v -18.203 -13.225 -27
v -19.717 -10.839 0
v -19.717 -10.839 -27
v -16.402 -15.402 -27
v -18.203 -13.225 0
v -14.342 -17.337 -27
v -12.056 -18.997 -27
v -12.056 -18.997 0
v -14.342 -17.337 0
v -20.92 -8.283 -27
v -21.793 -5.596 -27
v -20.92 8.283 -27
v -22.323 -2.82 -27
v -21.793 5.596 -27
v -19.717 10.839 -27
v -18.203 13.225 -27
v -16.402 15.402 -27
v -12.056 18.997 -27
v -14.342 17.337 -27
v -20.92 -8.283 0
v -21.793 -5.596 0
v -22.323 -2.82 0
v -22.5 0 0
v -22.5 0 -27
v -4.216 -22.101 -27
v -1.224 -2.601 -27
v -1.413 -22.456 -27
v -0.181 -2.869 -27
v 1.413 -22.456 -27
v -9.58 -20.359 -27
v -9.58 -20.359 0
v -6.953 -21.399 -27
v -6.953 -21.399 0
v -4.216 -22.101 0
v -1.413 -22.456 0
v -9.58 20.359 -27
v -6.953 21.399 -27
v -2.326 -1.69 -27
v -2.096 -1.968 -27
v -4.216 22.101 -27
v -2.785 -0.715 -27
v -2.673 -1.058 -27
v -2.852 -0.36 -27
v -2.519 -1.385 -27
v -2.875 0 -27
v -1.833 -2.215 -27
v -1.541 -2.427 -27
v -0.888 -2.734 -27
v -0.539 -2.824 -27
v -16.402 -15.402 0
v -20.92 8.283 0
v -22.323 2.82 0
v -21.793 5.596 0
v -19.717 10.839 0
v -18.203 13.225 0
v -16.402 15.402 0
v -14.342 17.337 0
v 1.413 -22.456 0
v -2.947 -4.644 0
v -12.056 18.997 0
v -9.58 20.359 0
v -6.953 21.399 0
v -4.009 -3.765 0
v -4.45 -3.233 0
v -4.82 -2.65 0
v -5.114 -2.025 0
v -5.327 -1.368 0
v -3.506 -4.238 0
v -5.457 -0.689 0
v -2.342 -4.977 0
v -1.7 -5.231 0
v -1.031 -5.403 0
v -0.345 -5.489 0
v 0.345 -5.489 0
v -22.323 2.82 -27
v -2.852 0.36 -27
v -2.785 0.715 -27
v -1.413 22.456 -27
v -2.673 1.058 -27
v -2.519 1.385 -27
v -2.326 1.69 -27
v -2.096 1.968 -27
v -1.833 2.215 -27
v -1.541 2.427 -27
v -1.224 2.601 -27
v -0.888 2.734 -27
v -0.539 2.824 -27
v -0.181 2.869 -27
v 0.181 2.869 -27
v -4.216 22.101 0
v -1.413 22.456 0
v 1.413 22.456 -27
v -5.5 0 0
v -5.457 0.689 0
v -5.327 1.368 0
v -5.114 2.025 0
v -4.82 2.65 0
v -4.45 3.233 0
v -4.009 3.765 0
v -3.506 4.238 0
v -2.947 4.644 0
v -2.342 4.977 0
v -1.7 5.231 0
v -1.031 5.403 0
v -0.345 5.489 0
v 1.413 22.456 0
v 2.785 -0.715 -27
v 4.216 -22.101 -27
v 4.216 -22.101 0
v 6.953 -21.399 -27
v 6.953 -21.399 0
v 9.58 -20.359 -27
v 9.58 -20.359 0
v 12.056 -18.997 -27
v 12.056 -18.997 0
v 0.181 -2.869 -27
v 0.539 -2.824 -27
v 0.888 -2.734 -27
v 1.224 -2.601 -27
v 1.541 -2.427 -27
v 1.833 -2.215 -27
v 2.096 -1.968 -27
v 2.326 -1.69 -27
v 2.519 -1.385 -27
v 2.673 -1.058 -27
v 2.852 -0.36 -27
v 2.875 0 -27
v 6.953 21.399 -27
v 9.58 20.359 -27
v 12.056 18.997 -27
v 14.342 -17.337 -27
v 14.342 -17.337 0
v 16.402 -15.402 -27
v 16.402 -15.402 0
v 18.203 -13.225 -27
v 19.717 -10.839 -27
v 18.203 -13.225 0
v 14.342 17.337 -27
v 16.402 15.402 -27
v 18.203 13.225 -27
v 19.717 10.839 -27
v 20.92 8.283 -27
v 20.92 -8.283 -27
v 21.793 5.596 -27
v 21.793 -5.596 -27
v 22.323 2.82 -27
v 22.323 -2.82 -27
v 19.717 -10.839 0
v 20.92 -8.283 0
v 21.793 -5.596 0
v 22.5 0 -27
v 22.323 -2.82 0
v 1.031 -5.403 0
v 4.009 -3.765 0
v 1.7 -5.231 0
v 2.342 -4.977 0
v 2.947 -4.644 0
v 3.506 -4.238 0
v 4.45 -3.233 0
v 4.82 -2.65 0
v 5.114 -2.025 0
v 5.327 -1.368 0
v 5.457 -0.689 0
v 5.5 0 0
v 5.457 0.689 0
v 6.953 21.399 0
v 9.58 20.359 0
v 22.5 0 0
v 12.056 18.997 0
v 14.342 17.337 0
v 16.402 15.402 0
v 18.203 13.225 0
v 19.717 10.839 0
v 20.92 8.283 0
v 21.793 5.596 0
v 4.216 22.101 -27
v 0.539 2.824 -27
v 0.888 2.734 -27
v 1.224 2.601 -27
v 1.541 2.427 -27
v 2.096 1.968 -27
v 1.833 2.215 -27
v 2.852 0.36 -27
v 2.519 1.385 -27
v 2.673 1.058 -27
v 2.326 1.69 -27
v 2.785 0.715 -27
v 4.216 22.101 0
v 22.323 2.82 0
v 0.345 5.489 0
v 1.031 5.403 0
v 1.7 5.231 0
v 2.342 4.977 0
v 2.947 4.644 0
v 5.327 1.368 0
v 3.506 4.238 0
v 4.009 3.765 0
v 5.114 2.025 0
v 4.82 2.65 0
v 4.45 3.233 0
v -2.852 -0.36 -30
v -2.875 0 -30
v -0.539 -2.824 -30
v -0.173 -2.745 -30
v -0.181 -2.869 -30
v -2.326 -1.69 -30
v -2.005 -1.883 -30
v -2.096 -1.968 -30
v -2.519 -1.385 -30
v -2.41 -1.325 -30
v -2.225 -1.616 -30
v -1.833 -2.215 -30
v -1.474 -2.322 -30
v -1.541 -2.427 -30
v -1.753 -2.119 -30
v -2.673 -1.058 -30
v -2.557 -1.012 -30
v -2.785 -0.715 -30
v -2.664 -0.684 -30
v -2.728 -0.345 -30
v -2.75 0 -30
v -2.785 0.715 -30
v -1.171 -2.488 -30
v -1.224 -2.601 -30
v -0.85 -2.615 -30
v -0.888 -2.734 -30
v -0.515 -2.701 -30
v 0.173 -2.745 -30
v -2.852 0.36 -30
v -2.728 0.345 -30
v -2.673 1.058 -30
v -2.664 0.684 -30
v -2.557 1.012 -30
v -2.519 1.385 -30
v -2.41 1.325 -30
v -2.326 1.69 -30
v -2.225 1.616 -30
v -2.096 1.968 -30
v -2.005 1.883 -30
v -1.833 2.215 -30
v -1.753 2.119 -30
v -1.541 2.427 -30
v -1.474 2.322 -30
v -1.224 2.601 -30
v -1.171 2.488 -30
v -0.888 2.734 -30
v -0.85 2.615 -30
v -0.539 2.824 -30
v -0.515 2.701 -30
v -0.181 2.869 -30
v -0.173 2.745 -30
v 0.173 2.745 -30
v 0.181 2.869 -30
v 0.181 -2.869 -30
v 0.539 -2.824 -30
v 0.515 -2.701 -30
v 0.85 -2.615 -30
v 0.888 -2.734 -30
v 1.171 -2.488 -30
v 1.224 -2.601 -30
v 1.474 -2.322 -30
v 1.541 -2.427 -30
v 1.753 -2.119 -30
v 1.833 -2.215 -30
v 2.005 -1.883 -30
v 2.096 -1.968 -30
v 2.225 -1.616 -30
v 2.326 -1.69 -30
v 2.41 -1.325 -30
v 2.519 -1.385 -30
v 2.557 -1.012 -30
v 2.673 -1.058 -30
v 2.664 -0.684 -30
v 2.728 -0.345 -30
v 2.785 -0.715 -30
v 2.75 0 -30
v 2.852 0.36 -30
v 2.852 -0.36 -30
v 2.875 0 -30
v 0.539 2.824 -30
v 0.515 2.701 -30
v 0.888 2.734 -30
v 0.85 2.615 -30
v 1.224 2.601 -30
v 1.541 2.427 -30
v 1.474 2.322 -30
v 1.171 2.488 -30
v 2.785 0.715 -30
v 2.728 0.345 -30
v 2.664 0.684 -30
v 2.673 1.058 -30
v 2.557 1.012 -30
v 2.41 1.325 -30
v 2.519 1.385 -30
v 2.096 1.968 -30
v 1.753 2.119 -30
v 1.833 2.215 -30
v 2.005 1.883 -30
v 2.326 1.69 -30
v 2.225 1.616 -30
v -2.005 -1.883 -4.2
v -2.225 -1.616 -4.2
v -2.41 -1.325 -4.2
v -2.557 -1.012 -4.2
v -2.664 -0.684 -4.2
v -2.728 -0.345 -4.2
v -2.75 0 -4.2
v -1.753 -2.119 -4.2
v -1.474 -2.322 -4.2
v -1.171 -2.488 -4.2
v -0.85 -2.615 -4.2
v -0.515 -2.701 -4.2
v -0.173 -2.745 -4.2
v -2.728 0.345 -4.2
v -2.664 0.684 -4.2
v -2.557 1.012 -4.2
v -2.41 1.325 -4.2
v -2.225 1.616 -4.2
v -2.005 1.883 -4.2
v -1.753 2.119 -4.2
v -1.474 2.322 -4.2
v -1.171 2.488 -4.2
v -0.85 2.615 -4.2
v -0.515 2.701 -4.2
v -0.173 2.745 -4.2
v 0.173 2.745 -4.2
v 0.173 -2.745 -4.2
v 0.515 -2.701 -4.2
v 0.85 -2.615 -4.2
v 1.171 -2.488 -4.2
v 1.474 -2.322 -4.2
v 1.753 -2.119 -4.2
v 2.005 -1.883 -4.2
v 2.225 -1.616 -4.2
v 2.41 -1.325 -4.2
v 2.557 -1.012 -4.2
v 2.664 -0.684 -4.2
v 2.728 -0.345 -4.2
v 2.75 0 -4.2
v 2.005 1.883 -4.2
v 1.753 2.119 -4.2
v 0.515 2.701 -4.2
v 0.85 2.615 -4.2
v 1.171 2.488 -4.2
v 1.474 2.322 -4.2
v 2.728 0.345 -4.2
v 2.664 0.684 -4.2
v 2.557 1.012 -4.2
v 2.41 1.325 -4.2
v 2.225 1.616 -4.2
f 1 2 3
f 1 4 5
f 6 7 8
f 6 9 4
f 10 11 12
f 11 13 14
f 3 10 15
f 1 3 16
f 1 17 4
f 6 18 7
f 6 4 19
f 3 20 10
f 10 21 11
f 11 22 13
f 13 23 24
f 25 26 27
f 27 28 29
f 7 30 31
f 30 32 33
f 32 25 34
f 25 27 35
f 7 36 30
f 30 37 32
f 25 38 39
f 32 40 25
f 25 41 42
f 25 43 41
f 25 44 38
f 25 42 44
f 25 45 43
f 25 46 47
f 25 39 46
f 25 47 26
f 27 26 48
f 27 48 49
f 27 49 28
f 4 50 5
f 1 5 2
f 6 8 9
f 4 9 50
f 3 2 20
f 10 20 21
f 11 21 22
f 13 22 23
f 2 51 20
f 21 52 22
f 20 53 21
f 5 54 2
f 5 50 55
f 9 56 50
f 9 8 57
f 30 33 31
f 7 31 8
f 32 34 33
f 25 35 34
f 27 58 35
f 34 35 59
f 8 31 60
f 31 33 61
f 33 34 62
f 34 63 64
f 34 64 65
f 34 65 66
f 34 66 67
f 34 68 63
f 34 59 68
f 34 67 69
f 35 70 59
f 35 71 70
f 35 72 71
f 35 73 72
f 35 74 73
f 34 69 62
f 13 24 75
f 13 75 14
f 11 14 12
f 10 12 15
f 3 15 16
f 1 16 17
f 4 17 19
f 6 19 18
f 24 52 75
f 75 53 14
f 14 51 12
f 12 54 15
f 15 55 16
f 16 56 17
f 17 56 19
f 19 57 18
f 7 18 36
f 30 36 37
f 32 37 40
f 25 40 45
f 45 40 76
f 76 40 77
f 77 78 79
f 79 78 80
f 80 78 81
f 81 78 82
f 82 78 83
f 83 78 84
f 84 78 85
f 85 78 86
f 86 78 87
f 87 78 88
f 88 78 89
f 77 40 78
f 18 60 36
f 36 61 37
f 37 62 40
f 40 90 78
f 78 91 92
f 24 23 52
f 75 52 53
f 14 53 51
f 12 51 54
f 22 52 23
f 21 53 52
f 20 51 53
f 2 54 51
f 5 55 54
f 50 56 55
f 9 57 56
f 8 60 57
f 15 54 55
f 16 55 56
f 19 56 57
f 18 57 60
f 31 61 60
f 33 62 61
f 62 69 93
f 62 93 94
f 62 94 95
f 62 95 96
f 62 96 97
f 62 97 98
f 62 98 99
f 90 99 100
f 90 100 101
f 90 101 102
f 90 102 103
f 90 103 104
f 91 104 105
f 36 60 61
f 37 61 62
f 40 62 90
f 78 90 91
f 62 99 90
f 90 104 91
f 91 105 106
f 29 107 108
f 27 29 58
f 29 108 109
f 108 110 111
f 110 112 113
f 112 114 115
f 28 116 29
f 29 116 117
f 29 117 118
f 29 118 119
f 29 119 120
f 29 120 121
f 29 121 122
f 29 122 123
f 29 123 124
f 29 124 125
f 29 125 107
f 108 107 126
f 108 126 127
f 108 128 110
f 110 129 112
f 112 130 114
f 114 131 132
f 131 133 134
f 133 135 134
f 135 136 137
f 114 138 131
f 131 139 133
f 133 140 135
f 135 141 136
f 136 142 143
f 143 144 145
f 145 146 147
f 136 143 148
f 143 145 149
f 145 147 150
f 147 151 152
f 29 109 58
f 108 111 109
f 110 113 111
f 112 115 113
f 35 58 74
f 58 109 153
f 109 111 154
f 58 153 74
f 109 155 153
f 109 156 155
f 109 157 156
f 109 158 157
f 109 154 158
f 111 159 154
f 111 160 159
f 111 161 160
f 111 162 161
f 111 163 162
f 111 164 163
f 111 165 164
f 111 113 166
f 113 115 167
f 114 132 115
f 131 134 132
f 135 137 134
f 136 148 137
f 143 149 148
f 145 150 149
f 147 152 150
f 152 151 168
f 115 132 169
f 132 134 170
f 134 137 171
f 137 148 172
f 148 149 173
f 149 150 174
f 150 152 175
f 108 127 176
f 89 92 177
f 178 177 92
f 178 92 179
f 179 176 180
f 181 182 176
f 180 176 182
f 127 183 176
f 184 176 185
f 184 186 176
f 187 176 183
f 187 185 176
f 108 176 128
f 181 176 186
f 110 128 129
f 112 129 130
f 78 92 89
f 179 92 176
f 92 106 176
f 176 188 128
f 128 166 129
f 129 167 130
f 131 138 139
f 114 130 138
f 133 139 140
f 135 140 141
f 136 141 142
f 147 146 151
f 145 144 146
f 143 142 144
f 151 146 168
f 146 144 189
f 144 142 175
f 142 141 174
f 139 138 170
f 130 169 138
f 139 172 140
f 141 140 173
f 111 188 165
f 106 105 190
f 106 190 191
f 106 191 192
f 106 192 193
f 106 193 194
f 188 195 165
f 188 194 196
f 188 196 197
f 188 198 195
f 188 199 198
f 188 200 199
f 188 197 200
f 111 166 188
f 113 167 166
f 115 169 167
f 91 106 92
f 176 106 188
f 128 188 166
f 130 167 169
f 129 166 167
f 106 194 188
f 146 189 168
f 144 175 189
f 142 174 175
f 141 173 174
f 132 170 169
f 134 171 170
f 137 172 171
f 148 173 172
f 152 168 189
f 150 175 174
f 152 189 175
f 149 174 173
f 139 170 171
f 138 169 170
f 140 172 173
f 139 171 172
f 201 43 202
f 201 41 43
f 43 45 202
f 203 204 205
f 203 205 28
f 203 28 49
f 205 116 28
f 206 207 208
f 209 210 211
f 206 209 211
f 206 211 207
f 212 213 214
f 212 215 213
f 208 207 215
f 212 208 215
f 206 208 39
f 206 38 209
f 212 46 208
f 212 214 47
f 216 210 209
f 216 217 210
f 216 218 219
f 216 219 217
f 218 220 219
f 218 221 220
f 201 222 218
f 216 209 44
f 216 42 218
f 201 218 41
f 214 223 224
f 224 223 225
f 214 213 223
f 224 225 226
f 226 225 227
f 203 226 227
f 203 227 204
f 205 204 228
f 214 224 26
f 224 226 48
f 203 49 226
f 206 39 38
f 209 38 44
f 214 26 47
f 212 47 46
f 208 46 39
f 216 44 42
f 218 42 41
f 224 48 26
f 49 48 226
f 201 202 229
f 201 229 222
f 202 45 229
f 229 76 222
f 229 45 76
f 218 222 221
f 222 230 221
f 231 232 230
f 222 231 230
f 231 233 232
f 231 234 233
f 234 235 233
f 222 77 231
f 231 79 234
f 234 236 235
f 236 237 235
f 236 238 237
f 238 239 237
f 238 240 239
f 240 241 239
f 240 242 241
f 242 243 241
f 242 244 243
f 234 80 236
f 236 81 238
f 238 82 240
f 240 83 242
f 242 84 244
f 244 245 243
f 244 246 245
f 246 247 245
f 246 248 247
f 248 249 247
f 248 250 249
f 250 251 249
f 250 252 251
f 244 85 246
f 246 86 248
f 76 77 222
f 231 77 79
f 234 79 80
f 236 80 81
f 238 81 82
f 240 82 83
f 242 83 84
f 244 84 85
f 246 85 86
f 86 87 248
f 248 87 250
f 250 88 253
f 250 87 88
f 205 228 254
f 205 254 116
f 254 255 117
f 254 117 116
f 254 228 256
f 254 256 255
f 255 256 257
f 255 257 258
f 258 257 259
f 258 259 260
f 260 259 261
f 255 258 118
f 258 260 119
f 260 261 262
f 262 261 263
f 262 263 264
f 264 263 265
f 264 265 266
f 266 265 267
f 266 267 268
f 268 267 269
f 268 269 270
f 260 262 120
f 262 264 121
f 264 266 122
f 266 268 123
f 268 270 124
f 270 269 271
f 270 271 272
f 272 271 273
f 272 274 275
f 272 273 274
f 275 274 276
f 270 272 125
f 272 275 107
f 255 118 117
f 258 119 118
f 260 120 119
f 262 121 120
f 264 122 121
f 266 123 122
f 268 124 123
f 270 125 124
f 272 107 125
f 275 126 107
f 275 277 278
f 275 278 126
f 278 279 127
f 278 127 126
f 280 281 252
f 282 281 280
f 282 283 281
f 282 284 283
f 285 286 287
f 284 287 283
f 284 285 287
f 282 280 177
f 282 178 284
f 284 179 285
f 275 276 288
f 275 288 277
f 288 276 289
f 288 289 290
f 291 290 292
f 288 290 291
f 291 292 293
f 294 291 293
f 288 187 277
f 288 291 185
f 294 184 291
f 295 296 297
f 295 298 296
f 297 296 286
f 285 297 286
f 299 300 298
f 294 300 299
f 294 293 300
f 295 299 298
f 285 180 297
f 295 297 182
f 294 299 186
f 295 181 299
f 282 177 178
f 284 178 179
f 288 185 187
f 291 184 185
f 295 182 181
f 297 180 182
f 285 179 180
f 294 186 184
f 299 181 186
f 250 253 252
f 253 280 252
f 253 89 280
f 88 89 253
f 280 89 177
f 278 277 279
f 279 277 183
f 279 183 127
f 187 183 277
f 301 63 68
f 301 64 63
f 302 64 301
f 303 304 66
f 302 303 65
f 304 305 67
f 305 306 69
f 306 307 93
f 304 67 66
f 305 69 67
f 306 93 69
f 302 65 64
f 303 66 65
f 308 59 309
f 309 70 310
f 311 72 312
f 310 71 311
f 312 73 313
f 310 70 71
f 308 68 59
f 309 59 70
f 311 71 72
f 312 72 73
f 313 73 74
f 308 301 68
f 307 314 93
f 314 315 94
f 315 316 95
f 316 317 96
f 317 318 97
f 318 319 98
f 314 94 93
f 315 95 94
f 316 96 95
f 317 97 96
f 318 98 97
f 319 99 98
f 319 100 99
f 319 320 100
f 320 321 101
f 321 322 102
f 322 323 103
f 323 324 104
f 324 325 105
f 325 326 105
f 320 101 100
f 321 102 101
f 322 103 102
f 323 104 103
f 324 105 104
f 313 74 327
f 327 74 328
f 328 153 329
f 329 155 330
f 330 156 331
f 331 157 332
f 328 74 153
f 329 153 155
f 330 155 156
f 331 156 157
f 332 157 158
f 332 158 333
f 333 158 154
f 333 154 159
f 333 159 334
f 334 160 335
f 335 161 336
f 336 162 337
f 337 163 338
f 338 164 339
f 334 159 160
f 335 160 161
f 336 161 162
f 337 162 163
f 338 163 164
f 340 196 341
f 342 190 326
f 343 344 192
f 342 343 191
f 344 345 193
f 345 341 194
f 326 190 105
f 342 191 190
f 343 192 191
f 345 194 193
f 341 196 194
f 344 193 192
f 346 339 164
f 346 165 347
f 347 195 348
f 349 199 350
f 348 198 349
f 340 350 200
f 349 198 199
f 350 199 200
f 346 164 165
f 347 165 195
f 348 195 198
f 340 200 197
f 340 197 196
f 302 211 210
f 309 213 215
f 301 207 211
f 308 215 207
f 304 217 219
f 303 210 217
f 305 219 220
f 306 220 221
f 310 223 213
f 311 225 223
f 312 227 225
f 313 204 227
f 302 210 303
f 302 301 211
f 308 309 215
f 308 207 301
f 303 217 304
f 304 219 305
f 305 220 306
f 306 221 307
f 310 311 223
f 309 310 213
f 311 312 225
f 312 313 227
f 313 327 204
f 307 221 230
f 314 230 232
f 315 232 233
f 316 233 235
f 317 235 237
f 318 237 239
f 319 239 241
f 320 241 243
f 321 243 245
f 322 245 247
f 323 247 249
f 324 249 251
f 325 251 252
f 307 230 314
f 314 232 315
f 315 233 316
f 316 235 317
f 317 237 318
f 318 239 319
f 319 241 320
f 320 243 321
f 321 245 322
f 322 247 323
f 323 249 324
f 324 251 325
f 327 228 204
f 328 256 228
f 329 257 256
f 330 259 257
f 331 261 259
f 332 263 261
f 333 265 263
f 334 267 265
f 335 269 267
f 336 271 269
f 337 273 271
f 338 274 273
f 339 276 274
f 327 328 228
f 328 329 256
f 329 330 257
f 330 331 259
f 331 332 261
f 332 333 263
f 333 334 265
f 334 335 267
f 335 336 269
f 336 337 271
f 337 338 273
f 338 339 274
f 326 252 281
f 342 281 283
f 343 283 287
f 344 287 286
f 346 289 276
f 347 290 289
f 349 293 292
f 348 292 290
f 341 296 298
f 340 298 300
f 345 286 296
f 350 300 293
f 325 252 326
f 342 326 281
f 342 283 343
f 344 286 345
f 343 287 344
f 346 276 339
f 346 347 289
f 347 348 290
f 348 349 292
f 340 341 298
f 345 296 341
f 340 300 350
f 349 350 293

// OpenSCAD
$fn = 50;


difference() {
	union() {
		translate(v = [0, 0, -27.0000000000]) {
			cylinder(h = 27, r = 22.5000000000);
		}
		#translate(v = [0, 0, -30.0000000000]) {
			cylinder(h = 30, r = 2.8750000000);
		}
	}
	union() {
		translate(v = [0, 0, 0]) {
			rotate(a = [0, 0, 0]) {
				difference() {
					union() {
						translate(v = [0, 0, -30.0000000000]) {
							cylinder(h = 30, r = 2.2500000000);
						}
						translate(v = [0, 0, -4.2000000000]) {
							cylinder(h = 4.2000000000, r1 = 2.7500000000, r2 = 5.5000000000);
						}
						translate(v = [0, 0, -30.0000000000]) {
							cylinder(h = 30, r = 2.7500000000);
						}
						translate(v = [0, 0, -30.0000000000]) {
							cylinder(h = 30, r = 2.2500000000);
						}
					}
					union();
				}
			}
		}
	}
}
